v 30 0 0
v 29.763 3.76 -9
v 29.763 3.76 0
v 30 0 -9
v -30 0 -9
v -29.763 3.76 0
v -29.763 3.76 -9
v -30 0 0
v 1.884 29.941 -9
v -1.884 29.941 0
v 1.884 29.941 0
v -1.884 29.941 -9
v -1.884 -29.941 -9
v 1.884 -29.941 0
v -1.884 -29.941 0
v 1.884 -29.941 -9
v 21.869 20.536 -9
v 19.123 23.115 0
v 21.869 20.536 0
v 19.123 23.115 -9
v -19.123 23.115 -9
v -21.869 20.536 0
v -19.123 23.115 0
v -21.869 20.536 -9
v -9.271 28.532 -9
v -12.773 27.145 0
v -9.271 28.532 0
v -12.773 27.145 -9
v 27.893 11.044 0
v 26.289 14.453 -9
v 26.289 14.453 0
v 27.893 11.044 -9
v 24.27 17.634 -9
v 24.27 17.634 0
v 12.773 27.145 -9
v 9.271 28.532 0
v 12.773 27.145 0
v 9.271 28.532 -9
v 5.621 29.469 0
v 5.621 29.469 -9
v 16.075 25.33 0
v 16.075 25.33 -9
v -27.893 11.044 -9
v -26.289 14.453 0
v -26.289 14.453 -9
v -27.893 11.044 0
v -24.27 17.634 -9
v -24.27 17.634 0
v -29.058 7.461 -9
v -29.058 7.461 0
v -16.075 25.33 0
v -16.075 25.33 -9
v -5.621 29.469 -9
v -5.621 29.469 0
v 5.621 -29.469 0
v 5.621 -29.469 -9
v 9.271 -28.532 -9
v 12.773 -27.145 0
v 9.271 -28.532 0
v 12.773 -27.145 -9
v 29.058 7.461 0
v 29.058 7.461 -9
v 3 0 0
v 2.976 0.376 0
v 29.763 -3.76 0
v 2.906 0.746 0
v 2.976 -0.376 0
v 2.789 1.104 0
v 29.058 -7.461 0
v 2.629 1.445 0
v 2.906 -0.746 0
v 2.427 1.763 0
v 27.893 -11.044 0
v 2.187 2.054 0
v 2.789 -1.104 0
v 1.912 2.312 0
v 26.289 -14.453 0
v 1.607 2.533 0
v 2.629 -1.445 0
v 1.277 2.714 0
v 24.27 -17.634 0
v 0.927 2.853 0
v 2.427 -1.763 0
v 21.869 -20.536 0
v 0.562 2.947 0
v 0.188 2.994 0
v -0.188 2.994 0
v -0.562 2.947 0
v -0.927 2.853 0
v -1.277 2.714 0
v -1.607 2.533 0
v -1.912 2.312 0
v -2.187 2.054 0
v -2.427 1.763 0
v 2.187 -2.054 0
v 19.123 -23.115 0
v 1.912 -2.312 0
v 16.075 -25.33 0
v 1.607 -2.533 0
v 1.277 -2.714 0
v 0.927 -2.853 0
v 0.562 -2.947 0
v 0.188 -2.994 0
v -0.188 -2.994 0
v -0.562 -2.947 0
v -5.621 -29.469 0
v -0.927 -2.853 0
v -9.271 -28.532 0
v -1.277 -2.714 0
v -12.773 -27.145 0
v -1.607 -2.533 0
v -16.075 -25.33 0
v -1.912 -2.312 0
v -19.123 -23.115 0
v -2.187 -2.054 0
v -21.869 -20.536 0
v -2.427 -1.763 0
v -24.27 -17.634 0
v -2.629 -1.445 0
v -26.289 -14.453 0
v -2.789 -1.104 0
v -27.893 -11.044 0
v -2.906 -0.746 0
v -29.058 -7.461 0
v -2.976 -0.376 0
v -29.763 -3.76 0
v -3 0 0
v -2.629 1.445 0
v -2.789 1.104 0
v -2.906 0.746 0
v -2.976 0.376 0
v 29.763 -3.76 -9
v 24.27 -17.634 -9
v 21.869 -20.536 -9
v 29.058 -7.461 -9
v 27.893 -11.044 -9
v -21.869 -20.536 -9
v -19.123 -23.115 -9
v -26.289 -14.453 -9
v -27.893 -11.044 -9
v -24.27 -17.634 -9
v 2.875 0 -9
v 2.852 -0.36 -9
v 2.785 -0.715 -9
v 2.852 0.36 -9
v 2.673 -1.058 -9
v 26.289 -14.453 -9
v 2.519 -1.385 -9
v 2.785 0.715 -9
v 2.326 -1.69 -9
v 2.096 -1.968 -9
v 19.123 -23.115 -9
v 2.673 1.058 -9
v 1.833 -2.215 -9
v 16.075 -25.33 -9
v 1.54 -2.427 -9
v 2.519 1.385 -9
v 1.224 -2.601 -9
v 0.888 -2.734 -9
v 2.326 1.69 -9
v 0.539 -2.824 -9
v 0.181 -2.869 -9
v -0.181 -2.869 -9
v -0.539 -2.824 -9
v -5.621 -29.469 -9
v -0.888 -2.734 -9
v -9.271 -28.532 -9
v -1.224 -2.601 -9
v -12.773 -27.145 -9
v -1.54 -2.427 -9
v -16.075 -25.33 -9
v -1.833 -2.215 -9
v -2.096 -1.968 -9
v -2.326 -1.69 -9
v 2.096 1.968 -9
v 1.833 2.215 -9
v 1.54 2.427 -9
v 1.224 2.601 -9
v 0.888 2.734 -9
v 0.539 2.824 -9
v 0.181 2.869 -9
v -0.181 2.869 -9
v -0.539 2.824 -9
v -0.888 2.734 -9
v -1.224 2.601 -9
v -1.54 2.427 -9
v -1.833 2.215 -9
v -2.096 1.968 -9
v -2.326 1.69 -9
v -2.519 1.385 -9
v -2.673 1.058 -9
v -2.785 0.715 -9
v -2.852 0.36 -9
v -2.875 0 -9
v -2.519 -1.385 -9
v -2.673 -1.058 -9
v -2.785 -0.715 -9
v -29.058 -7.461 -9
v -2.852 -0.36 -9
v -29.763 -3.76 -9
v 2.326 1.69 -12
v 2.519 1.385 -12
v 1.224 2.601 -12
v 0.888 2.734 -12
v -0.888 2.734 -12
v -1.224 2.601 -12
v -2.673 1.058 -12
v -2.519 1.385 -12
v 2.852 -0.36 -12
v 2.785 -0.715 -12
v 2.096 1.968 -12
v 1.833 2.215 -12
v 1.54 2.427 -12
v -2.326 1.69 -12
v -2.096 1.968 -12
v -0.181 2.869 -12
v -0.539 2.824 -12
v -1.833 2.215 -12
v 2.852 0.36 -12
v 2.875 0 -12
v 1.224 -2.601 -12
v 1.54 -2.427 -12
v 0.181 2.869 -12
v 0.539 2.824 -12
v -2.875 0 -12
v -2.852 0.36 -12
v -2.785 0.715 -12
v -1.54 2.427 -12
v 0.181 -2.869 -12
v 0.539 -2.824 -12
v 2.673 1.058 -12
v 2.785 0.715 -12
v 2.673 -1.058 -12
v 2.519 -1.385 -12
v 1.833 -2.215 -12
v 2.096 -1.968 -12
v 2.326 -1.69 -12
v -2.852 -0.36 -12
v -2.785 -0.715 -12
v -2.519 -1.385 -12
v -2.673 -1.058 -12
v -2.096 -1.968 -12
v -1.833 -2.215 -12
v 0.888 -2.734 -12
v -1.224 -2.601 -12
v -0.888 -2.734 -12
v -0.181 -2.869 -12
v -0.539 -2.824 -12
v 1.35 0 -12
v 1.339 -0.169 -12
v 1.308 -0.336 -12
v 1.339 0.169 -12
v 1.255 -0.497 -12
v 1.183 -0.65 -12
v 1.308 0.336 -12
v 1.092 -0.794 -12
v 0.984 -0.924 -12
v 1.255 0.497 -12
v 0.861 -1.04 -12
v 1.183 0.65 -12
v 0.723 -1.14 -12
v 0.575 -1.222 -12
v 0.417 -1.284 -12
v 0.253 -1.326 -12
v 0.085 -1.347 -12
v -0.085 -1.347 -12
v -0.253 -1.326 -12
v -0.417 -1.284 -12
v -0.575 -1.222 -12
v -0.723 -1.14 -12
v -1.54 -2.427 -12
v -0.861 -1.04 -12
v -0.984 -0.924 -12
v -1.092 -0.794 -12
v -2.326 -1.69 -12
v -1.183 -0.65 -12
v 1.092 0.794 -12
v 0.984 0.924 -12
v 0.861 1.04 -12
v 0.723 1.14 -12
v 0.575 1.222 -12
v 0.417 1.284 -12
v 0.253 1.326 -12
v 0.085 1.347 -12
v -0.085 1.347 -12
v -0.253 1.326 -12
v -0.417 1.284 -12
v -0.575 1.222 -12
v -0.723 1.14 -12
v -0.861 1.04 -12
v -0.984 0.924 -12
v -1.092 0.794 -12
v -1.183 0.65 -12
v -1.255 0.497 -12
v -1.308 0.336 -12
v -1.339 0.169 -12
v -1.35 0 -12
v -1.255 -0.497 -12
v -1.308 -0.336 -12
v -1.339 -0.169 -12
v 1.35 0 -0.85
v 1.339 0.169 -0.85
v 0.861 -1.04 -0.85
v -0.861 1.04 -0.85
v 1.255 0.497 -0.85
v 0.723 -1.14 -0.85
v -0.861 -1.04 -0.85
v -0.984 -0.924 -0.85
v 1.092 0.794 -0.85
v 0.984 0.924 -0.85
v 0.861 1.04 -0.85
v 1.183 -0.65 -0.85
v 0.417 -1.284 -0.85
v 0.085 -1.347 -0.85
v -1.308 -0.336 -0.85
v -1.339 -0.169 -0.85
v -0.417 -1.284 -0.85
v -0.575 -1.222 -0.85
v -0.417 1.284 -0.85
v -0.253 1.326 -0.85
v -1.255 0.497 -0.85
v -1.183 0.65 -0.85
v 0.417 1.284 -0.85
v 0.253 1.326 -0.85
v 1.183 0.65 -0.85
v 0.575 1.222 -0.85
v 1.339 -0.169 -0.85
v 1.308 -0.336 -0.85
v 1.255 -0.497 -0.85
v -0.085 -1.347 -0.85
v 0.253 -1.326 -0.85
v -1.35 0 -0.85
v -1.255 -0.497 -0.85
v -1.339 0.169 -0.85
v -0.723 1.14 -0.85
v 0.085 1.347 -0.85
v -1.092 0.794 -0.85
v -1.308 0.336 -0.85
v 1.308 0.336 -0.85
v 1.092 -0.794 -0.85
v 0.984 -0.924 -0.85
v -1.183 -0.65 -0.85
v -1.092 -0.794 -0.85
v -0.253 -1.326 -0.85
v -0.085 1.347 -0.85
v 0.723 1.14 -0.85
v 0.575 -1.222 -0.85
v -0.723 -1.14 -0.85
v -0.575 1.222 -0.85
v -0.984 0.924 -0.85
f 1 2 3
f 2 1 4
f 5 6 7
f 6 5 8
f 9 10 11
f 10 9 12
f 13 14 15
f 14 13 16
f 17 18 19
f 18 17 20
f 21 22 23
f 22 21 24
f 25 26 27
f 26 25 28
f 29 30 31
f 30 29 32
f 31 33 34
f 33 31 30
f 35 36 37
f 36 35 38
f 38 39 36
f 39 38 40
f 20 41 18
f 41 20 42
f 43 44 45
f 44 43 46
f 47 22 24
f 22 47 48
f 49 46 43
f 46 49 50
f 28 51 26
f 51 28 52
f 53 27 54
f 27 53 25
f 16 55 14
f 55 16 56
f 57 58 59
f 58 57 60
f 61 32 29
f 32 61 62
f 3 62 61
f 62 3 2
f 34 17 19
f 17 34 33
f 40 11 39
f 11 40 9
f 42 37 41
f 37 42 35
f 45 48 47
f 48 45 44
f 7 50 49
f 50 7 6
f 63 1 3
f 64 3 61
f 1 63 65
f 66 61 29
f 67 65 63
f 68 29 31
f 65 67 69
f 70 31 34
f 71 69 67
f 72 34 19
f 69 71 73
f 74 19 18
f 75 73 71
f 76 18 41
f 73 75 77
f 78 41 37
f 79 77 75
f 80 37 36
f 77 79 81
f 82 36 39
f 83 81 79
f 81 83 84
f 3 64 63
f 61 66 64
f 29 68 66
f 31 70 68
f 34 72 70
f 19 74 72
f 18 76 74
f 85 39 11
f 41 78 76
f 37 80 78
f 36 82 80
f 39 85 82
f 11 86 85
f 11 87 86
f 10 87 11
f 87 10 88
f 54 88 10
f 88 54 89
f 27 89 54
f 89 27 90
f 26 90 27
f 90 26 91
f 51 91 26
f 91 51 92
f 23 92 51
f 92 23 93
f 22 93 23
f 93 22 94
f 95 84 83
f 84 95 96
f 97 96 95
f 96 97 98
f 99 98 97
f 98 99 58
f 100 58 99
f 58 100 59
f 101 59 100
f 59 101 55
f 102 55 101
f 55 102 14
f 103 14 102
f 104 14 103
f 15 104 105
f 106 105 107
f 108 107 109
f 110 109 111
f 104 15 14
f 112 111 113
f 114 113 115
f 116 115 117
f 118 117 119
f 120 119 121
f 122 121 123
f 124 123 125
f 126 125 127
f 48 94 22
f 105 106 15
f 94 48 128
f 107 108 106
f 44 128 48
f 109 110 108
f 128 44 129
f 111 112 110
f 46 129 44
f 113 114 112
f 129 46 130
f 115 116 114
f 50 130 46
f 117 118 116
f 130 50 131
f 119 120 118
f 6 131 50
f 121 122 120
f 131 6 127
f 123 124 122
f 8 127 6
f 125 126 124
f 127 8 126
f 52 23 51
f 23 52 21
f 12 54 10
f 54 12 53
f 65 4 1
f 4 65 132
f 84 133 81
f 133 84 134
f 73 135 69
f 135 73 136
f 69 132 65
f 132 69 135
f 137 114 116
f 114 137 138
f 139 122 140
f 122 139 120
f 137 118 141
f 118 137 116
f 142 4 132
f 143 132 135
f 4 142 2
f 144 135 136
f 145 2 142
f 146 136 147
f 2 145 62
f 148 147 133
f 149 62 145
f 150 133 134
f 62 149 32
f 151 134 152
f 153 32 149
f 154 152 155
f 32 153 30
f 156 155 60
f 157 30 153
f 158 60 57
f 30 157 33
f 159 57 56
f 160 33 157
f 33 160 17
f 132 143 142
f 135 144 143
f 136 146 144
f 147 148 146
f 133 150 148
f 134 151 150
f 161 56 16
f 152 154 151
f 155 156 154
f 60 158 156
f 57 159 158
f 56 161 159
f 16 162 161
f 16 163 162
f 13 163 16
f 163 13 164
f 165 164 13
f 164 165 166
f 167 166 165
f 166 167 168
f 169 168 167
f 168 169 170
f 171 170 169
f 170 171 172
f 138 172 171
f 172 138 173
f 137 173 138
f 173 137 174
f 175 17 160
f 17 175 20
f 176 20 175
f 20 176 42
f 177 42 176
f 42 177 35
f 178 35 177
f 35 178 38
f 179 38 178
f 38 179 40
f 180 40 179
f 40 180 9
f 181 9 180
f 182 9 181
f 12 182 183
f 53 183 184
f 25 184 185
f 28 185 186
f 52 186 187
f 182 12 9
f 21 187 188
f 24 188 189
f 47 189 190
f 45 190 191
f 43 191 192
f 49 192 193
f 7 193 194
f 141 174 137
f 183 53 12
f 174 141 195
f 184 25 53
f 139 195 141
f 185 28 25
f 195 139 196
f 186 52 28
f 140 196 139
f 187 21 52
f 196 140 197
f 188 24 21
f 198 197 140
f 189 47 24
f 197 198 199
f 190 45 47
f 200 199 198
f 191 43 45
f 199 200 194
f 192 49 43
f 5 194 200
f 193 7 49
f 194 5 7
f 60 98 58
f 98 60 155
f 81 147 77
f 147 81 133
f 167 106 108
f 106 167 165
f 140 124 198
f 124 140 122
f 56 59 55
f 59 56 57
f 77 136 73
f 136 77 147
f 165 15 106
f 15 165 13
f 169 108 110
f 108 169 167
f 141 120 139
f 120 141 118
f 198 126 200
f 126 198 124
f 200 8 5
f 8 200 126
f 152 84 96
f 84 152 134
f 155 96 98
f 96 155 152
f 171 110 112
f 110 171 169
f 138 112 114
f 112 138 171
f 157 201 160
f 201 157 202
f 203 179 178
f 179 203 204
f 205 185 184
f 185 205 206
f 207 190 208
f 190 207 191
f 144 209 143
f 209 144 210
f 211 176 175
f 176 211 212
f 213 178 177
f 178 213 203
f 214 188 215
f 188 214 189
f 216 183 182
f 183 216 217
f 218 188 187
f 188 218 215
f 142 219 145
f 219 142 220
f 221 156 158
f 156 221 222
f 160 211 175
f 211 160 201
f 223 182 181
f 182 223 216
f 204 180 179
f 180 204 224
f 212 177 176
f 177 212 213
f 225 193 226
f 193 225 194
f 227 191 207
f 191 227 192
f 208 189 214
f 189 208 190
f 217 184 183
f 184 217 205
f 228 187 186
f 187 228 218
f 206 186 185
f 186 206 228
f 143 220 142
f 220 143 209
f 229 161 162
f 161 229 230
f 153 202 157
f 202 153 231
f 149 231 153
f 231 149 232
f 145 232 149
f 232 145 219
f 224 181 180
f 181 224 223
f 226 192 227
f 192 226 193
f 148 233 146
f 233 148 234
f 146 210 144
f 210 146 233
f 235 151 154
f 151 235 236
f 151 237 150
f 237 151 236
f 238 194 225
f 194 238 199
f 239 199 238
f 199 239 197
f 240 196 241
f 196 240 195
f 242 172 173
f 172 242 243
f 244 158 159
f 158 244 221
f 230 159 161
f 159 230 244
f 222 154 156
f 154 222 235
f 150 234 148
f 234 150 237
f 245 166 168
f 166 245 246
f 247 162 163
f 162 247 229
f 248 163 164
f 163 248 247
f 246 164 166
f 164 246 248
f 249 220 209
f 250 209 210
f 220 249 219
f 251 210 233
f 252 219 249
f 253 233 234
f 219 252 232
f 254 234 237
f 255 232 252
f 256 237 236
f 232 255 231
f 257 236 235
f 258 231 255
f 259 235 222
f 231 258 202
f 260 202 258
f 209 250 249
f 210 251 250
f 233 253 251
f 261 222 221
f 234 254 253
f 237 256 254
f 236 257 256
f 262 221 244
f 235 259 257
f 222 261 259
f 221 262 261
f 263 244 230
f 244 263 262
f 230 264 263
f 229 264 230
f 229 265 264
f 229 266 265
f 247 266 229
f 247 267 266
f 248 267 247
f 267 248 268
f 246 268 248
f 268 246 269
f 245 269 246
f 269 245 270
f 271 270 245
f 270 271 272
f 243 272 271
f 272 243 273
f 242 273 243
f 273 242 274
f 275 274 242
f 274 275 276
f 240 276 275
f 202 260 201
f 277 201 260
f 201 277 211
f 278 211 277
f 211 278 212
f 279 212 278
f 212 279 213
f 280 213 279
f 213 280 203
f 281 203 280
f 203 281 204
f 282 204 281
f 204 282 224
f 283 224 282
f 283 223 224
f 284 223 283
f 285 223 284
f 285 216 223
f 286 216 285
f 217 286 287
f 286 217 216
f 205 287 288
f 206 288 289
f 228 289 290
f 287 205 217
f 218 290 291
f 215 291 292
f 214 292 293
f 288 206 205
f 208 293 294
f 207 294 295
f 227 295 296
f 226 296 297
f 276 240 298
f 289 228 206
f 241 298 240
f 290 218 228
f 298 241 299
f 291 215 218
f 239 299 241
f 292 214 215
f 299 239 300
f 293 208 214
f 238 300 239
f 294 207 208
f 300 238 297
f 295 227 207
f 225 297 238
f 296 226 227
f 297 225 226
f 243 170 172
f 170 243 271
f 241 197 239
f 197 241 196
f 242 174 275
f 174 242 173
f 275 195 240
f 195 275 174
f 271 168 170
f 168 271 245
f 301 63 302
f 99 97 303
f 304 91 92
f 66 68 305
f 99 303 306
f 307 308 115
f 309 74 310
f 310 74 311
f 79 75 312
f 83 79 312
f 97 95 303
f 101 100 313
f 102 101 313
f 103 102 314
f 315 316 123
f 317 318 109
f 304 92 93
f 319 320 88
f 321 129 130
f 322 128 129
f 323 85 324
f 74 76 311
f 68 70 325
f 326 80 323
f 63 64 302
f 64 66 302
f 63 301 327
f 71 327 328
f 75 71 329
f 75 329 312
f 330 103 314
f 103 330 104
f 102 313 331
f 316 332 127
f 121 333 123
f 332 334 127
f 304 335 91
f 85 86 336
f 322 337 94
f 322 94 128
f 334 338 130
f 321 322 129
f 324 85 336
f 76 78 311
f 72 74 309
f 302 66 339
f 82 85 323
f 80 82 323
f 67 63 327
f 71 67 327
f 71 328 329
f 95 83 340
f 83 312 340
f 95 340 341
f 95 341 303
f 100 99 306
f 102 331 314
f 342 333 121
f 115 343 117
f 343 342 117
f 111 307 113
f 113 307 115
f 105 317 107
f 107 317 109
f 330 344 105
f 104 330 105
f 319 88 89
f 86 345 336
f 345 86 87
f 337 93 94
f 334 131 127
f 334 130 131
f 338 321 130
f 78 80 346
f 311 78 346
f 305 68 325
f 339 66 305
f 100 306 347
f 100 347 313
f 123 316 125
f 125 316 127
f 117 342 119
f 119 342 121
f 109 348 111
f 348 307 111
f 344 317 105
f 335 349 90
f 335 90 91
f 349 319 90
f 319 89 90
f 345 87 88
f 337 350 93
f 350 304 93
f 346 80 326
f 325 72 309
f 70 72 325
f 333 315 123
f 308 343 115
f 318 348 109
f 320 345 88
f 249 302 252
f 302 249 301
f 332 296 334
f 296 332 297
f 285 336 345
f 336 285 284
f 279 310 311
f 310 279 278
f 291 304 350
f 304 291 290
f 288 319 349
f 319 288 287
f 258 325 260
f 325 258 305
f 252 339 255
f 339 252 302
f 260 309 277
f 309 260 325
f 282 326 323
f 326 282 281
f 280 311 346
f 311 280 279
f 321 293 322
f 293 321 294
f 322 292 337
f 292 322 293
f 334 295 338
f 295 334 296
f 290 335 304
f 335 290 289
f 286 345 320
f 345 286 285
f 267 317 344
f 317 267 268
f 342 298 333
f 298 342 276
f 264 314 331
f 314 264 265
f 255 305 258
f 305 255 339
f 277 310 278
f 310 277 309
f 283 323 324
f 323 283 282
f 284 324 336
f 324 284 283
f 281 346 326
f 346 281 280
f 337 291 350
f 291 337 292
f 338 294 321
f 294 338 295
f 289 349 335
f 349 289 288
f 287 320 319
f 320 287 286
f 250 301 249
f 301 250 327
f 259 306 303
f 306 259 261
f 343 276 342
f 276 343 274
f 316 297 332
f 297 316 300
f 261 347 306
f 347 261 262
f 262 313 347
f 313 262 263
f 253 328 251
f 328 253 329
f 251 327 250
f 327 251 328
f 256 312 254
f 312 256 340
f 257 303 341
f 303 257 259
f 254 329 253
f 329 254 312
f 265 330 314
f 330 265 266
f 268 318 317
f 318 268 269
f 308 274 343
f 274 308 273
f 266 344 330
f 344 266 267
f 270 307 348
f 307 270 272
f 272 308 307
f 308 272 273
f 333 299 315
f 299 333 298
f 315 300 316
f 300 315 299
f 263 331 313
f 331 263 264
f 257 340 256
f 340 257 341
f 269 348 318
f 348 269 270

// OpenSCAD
$fn = 50;


difference() {
	union() {
		translate(v = [0, 0, -9.0000000000]) {
			cylinder(h = 9, r = 30.0000000000);
		}
		translate(v = [0, 0, -12.0000000000]) {
			cylinder(h = 12, r = 2.8750000000);
		}
	}
	union() {
		translate(v = [0, 0, 0]) {
			rotate(a = [0, 0, 0]) {
				difference() {
					union() {
						translate(v = [0, 0, -12.0000000000]) {
							cylinder(h = 12, r = 1.0000000000);
						}
						translate(v = [0, 0, -0.8500000000]) {
							cylinder(h = 0.8500000000, r1 = 1.3500000000, r2 = 3.0000000000);
						}
						translate(v = [0, 0, -12.0000000000]) {
							cylinder(h = 12, r = 1.3500000000);
						}
						translate(v = [0, 0, -12.0000000000]) {
							cylinder(h = 12, r = 1.0000000000);
						}
					}
					union();
				}
			}
		}
	}
}
